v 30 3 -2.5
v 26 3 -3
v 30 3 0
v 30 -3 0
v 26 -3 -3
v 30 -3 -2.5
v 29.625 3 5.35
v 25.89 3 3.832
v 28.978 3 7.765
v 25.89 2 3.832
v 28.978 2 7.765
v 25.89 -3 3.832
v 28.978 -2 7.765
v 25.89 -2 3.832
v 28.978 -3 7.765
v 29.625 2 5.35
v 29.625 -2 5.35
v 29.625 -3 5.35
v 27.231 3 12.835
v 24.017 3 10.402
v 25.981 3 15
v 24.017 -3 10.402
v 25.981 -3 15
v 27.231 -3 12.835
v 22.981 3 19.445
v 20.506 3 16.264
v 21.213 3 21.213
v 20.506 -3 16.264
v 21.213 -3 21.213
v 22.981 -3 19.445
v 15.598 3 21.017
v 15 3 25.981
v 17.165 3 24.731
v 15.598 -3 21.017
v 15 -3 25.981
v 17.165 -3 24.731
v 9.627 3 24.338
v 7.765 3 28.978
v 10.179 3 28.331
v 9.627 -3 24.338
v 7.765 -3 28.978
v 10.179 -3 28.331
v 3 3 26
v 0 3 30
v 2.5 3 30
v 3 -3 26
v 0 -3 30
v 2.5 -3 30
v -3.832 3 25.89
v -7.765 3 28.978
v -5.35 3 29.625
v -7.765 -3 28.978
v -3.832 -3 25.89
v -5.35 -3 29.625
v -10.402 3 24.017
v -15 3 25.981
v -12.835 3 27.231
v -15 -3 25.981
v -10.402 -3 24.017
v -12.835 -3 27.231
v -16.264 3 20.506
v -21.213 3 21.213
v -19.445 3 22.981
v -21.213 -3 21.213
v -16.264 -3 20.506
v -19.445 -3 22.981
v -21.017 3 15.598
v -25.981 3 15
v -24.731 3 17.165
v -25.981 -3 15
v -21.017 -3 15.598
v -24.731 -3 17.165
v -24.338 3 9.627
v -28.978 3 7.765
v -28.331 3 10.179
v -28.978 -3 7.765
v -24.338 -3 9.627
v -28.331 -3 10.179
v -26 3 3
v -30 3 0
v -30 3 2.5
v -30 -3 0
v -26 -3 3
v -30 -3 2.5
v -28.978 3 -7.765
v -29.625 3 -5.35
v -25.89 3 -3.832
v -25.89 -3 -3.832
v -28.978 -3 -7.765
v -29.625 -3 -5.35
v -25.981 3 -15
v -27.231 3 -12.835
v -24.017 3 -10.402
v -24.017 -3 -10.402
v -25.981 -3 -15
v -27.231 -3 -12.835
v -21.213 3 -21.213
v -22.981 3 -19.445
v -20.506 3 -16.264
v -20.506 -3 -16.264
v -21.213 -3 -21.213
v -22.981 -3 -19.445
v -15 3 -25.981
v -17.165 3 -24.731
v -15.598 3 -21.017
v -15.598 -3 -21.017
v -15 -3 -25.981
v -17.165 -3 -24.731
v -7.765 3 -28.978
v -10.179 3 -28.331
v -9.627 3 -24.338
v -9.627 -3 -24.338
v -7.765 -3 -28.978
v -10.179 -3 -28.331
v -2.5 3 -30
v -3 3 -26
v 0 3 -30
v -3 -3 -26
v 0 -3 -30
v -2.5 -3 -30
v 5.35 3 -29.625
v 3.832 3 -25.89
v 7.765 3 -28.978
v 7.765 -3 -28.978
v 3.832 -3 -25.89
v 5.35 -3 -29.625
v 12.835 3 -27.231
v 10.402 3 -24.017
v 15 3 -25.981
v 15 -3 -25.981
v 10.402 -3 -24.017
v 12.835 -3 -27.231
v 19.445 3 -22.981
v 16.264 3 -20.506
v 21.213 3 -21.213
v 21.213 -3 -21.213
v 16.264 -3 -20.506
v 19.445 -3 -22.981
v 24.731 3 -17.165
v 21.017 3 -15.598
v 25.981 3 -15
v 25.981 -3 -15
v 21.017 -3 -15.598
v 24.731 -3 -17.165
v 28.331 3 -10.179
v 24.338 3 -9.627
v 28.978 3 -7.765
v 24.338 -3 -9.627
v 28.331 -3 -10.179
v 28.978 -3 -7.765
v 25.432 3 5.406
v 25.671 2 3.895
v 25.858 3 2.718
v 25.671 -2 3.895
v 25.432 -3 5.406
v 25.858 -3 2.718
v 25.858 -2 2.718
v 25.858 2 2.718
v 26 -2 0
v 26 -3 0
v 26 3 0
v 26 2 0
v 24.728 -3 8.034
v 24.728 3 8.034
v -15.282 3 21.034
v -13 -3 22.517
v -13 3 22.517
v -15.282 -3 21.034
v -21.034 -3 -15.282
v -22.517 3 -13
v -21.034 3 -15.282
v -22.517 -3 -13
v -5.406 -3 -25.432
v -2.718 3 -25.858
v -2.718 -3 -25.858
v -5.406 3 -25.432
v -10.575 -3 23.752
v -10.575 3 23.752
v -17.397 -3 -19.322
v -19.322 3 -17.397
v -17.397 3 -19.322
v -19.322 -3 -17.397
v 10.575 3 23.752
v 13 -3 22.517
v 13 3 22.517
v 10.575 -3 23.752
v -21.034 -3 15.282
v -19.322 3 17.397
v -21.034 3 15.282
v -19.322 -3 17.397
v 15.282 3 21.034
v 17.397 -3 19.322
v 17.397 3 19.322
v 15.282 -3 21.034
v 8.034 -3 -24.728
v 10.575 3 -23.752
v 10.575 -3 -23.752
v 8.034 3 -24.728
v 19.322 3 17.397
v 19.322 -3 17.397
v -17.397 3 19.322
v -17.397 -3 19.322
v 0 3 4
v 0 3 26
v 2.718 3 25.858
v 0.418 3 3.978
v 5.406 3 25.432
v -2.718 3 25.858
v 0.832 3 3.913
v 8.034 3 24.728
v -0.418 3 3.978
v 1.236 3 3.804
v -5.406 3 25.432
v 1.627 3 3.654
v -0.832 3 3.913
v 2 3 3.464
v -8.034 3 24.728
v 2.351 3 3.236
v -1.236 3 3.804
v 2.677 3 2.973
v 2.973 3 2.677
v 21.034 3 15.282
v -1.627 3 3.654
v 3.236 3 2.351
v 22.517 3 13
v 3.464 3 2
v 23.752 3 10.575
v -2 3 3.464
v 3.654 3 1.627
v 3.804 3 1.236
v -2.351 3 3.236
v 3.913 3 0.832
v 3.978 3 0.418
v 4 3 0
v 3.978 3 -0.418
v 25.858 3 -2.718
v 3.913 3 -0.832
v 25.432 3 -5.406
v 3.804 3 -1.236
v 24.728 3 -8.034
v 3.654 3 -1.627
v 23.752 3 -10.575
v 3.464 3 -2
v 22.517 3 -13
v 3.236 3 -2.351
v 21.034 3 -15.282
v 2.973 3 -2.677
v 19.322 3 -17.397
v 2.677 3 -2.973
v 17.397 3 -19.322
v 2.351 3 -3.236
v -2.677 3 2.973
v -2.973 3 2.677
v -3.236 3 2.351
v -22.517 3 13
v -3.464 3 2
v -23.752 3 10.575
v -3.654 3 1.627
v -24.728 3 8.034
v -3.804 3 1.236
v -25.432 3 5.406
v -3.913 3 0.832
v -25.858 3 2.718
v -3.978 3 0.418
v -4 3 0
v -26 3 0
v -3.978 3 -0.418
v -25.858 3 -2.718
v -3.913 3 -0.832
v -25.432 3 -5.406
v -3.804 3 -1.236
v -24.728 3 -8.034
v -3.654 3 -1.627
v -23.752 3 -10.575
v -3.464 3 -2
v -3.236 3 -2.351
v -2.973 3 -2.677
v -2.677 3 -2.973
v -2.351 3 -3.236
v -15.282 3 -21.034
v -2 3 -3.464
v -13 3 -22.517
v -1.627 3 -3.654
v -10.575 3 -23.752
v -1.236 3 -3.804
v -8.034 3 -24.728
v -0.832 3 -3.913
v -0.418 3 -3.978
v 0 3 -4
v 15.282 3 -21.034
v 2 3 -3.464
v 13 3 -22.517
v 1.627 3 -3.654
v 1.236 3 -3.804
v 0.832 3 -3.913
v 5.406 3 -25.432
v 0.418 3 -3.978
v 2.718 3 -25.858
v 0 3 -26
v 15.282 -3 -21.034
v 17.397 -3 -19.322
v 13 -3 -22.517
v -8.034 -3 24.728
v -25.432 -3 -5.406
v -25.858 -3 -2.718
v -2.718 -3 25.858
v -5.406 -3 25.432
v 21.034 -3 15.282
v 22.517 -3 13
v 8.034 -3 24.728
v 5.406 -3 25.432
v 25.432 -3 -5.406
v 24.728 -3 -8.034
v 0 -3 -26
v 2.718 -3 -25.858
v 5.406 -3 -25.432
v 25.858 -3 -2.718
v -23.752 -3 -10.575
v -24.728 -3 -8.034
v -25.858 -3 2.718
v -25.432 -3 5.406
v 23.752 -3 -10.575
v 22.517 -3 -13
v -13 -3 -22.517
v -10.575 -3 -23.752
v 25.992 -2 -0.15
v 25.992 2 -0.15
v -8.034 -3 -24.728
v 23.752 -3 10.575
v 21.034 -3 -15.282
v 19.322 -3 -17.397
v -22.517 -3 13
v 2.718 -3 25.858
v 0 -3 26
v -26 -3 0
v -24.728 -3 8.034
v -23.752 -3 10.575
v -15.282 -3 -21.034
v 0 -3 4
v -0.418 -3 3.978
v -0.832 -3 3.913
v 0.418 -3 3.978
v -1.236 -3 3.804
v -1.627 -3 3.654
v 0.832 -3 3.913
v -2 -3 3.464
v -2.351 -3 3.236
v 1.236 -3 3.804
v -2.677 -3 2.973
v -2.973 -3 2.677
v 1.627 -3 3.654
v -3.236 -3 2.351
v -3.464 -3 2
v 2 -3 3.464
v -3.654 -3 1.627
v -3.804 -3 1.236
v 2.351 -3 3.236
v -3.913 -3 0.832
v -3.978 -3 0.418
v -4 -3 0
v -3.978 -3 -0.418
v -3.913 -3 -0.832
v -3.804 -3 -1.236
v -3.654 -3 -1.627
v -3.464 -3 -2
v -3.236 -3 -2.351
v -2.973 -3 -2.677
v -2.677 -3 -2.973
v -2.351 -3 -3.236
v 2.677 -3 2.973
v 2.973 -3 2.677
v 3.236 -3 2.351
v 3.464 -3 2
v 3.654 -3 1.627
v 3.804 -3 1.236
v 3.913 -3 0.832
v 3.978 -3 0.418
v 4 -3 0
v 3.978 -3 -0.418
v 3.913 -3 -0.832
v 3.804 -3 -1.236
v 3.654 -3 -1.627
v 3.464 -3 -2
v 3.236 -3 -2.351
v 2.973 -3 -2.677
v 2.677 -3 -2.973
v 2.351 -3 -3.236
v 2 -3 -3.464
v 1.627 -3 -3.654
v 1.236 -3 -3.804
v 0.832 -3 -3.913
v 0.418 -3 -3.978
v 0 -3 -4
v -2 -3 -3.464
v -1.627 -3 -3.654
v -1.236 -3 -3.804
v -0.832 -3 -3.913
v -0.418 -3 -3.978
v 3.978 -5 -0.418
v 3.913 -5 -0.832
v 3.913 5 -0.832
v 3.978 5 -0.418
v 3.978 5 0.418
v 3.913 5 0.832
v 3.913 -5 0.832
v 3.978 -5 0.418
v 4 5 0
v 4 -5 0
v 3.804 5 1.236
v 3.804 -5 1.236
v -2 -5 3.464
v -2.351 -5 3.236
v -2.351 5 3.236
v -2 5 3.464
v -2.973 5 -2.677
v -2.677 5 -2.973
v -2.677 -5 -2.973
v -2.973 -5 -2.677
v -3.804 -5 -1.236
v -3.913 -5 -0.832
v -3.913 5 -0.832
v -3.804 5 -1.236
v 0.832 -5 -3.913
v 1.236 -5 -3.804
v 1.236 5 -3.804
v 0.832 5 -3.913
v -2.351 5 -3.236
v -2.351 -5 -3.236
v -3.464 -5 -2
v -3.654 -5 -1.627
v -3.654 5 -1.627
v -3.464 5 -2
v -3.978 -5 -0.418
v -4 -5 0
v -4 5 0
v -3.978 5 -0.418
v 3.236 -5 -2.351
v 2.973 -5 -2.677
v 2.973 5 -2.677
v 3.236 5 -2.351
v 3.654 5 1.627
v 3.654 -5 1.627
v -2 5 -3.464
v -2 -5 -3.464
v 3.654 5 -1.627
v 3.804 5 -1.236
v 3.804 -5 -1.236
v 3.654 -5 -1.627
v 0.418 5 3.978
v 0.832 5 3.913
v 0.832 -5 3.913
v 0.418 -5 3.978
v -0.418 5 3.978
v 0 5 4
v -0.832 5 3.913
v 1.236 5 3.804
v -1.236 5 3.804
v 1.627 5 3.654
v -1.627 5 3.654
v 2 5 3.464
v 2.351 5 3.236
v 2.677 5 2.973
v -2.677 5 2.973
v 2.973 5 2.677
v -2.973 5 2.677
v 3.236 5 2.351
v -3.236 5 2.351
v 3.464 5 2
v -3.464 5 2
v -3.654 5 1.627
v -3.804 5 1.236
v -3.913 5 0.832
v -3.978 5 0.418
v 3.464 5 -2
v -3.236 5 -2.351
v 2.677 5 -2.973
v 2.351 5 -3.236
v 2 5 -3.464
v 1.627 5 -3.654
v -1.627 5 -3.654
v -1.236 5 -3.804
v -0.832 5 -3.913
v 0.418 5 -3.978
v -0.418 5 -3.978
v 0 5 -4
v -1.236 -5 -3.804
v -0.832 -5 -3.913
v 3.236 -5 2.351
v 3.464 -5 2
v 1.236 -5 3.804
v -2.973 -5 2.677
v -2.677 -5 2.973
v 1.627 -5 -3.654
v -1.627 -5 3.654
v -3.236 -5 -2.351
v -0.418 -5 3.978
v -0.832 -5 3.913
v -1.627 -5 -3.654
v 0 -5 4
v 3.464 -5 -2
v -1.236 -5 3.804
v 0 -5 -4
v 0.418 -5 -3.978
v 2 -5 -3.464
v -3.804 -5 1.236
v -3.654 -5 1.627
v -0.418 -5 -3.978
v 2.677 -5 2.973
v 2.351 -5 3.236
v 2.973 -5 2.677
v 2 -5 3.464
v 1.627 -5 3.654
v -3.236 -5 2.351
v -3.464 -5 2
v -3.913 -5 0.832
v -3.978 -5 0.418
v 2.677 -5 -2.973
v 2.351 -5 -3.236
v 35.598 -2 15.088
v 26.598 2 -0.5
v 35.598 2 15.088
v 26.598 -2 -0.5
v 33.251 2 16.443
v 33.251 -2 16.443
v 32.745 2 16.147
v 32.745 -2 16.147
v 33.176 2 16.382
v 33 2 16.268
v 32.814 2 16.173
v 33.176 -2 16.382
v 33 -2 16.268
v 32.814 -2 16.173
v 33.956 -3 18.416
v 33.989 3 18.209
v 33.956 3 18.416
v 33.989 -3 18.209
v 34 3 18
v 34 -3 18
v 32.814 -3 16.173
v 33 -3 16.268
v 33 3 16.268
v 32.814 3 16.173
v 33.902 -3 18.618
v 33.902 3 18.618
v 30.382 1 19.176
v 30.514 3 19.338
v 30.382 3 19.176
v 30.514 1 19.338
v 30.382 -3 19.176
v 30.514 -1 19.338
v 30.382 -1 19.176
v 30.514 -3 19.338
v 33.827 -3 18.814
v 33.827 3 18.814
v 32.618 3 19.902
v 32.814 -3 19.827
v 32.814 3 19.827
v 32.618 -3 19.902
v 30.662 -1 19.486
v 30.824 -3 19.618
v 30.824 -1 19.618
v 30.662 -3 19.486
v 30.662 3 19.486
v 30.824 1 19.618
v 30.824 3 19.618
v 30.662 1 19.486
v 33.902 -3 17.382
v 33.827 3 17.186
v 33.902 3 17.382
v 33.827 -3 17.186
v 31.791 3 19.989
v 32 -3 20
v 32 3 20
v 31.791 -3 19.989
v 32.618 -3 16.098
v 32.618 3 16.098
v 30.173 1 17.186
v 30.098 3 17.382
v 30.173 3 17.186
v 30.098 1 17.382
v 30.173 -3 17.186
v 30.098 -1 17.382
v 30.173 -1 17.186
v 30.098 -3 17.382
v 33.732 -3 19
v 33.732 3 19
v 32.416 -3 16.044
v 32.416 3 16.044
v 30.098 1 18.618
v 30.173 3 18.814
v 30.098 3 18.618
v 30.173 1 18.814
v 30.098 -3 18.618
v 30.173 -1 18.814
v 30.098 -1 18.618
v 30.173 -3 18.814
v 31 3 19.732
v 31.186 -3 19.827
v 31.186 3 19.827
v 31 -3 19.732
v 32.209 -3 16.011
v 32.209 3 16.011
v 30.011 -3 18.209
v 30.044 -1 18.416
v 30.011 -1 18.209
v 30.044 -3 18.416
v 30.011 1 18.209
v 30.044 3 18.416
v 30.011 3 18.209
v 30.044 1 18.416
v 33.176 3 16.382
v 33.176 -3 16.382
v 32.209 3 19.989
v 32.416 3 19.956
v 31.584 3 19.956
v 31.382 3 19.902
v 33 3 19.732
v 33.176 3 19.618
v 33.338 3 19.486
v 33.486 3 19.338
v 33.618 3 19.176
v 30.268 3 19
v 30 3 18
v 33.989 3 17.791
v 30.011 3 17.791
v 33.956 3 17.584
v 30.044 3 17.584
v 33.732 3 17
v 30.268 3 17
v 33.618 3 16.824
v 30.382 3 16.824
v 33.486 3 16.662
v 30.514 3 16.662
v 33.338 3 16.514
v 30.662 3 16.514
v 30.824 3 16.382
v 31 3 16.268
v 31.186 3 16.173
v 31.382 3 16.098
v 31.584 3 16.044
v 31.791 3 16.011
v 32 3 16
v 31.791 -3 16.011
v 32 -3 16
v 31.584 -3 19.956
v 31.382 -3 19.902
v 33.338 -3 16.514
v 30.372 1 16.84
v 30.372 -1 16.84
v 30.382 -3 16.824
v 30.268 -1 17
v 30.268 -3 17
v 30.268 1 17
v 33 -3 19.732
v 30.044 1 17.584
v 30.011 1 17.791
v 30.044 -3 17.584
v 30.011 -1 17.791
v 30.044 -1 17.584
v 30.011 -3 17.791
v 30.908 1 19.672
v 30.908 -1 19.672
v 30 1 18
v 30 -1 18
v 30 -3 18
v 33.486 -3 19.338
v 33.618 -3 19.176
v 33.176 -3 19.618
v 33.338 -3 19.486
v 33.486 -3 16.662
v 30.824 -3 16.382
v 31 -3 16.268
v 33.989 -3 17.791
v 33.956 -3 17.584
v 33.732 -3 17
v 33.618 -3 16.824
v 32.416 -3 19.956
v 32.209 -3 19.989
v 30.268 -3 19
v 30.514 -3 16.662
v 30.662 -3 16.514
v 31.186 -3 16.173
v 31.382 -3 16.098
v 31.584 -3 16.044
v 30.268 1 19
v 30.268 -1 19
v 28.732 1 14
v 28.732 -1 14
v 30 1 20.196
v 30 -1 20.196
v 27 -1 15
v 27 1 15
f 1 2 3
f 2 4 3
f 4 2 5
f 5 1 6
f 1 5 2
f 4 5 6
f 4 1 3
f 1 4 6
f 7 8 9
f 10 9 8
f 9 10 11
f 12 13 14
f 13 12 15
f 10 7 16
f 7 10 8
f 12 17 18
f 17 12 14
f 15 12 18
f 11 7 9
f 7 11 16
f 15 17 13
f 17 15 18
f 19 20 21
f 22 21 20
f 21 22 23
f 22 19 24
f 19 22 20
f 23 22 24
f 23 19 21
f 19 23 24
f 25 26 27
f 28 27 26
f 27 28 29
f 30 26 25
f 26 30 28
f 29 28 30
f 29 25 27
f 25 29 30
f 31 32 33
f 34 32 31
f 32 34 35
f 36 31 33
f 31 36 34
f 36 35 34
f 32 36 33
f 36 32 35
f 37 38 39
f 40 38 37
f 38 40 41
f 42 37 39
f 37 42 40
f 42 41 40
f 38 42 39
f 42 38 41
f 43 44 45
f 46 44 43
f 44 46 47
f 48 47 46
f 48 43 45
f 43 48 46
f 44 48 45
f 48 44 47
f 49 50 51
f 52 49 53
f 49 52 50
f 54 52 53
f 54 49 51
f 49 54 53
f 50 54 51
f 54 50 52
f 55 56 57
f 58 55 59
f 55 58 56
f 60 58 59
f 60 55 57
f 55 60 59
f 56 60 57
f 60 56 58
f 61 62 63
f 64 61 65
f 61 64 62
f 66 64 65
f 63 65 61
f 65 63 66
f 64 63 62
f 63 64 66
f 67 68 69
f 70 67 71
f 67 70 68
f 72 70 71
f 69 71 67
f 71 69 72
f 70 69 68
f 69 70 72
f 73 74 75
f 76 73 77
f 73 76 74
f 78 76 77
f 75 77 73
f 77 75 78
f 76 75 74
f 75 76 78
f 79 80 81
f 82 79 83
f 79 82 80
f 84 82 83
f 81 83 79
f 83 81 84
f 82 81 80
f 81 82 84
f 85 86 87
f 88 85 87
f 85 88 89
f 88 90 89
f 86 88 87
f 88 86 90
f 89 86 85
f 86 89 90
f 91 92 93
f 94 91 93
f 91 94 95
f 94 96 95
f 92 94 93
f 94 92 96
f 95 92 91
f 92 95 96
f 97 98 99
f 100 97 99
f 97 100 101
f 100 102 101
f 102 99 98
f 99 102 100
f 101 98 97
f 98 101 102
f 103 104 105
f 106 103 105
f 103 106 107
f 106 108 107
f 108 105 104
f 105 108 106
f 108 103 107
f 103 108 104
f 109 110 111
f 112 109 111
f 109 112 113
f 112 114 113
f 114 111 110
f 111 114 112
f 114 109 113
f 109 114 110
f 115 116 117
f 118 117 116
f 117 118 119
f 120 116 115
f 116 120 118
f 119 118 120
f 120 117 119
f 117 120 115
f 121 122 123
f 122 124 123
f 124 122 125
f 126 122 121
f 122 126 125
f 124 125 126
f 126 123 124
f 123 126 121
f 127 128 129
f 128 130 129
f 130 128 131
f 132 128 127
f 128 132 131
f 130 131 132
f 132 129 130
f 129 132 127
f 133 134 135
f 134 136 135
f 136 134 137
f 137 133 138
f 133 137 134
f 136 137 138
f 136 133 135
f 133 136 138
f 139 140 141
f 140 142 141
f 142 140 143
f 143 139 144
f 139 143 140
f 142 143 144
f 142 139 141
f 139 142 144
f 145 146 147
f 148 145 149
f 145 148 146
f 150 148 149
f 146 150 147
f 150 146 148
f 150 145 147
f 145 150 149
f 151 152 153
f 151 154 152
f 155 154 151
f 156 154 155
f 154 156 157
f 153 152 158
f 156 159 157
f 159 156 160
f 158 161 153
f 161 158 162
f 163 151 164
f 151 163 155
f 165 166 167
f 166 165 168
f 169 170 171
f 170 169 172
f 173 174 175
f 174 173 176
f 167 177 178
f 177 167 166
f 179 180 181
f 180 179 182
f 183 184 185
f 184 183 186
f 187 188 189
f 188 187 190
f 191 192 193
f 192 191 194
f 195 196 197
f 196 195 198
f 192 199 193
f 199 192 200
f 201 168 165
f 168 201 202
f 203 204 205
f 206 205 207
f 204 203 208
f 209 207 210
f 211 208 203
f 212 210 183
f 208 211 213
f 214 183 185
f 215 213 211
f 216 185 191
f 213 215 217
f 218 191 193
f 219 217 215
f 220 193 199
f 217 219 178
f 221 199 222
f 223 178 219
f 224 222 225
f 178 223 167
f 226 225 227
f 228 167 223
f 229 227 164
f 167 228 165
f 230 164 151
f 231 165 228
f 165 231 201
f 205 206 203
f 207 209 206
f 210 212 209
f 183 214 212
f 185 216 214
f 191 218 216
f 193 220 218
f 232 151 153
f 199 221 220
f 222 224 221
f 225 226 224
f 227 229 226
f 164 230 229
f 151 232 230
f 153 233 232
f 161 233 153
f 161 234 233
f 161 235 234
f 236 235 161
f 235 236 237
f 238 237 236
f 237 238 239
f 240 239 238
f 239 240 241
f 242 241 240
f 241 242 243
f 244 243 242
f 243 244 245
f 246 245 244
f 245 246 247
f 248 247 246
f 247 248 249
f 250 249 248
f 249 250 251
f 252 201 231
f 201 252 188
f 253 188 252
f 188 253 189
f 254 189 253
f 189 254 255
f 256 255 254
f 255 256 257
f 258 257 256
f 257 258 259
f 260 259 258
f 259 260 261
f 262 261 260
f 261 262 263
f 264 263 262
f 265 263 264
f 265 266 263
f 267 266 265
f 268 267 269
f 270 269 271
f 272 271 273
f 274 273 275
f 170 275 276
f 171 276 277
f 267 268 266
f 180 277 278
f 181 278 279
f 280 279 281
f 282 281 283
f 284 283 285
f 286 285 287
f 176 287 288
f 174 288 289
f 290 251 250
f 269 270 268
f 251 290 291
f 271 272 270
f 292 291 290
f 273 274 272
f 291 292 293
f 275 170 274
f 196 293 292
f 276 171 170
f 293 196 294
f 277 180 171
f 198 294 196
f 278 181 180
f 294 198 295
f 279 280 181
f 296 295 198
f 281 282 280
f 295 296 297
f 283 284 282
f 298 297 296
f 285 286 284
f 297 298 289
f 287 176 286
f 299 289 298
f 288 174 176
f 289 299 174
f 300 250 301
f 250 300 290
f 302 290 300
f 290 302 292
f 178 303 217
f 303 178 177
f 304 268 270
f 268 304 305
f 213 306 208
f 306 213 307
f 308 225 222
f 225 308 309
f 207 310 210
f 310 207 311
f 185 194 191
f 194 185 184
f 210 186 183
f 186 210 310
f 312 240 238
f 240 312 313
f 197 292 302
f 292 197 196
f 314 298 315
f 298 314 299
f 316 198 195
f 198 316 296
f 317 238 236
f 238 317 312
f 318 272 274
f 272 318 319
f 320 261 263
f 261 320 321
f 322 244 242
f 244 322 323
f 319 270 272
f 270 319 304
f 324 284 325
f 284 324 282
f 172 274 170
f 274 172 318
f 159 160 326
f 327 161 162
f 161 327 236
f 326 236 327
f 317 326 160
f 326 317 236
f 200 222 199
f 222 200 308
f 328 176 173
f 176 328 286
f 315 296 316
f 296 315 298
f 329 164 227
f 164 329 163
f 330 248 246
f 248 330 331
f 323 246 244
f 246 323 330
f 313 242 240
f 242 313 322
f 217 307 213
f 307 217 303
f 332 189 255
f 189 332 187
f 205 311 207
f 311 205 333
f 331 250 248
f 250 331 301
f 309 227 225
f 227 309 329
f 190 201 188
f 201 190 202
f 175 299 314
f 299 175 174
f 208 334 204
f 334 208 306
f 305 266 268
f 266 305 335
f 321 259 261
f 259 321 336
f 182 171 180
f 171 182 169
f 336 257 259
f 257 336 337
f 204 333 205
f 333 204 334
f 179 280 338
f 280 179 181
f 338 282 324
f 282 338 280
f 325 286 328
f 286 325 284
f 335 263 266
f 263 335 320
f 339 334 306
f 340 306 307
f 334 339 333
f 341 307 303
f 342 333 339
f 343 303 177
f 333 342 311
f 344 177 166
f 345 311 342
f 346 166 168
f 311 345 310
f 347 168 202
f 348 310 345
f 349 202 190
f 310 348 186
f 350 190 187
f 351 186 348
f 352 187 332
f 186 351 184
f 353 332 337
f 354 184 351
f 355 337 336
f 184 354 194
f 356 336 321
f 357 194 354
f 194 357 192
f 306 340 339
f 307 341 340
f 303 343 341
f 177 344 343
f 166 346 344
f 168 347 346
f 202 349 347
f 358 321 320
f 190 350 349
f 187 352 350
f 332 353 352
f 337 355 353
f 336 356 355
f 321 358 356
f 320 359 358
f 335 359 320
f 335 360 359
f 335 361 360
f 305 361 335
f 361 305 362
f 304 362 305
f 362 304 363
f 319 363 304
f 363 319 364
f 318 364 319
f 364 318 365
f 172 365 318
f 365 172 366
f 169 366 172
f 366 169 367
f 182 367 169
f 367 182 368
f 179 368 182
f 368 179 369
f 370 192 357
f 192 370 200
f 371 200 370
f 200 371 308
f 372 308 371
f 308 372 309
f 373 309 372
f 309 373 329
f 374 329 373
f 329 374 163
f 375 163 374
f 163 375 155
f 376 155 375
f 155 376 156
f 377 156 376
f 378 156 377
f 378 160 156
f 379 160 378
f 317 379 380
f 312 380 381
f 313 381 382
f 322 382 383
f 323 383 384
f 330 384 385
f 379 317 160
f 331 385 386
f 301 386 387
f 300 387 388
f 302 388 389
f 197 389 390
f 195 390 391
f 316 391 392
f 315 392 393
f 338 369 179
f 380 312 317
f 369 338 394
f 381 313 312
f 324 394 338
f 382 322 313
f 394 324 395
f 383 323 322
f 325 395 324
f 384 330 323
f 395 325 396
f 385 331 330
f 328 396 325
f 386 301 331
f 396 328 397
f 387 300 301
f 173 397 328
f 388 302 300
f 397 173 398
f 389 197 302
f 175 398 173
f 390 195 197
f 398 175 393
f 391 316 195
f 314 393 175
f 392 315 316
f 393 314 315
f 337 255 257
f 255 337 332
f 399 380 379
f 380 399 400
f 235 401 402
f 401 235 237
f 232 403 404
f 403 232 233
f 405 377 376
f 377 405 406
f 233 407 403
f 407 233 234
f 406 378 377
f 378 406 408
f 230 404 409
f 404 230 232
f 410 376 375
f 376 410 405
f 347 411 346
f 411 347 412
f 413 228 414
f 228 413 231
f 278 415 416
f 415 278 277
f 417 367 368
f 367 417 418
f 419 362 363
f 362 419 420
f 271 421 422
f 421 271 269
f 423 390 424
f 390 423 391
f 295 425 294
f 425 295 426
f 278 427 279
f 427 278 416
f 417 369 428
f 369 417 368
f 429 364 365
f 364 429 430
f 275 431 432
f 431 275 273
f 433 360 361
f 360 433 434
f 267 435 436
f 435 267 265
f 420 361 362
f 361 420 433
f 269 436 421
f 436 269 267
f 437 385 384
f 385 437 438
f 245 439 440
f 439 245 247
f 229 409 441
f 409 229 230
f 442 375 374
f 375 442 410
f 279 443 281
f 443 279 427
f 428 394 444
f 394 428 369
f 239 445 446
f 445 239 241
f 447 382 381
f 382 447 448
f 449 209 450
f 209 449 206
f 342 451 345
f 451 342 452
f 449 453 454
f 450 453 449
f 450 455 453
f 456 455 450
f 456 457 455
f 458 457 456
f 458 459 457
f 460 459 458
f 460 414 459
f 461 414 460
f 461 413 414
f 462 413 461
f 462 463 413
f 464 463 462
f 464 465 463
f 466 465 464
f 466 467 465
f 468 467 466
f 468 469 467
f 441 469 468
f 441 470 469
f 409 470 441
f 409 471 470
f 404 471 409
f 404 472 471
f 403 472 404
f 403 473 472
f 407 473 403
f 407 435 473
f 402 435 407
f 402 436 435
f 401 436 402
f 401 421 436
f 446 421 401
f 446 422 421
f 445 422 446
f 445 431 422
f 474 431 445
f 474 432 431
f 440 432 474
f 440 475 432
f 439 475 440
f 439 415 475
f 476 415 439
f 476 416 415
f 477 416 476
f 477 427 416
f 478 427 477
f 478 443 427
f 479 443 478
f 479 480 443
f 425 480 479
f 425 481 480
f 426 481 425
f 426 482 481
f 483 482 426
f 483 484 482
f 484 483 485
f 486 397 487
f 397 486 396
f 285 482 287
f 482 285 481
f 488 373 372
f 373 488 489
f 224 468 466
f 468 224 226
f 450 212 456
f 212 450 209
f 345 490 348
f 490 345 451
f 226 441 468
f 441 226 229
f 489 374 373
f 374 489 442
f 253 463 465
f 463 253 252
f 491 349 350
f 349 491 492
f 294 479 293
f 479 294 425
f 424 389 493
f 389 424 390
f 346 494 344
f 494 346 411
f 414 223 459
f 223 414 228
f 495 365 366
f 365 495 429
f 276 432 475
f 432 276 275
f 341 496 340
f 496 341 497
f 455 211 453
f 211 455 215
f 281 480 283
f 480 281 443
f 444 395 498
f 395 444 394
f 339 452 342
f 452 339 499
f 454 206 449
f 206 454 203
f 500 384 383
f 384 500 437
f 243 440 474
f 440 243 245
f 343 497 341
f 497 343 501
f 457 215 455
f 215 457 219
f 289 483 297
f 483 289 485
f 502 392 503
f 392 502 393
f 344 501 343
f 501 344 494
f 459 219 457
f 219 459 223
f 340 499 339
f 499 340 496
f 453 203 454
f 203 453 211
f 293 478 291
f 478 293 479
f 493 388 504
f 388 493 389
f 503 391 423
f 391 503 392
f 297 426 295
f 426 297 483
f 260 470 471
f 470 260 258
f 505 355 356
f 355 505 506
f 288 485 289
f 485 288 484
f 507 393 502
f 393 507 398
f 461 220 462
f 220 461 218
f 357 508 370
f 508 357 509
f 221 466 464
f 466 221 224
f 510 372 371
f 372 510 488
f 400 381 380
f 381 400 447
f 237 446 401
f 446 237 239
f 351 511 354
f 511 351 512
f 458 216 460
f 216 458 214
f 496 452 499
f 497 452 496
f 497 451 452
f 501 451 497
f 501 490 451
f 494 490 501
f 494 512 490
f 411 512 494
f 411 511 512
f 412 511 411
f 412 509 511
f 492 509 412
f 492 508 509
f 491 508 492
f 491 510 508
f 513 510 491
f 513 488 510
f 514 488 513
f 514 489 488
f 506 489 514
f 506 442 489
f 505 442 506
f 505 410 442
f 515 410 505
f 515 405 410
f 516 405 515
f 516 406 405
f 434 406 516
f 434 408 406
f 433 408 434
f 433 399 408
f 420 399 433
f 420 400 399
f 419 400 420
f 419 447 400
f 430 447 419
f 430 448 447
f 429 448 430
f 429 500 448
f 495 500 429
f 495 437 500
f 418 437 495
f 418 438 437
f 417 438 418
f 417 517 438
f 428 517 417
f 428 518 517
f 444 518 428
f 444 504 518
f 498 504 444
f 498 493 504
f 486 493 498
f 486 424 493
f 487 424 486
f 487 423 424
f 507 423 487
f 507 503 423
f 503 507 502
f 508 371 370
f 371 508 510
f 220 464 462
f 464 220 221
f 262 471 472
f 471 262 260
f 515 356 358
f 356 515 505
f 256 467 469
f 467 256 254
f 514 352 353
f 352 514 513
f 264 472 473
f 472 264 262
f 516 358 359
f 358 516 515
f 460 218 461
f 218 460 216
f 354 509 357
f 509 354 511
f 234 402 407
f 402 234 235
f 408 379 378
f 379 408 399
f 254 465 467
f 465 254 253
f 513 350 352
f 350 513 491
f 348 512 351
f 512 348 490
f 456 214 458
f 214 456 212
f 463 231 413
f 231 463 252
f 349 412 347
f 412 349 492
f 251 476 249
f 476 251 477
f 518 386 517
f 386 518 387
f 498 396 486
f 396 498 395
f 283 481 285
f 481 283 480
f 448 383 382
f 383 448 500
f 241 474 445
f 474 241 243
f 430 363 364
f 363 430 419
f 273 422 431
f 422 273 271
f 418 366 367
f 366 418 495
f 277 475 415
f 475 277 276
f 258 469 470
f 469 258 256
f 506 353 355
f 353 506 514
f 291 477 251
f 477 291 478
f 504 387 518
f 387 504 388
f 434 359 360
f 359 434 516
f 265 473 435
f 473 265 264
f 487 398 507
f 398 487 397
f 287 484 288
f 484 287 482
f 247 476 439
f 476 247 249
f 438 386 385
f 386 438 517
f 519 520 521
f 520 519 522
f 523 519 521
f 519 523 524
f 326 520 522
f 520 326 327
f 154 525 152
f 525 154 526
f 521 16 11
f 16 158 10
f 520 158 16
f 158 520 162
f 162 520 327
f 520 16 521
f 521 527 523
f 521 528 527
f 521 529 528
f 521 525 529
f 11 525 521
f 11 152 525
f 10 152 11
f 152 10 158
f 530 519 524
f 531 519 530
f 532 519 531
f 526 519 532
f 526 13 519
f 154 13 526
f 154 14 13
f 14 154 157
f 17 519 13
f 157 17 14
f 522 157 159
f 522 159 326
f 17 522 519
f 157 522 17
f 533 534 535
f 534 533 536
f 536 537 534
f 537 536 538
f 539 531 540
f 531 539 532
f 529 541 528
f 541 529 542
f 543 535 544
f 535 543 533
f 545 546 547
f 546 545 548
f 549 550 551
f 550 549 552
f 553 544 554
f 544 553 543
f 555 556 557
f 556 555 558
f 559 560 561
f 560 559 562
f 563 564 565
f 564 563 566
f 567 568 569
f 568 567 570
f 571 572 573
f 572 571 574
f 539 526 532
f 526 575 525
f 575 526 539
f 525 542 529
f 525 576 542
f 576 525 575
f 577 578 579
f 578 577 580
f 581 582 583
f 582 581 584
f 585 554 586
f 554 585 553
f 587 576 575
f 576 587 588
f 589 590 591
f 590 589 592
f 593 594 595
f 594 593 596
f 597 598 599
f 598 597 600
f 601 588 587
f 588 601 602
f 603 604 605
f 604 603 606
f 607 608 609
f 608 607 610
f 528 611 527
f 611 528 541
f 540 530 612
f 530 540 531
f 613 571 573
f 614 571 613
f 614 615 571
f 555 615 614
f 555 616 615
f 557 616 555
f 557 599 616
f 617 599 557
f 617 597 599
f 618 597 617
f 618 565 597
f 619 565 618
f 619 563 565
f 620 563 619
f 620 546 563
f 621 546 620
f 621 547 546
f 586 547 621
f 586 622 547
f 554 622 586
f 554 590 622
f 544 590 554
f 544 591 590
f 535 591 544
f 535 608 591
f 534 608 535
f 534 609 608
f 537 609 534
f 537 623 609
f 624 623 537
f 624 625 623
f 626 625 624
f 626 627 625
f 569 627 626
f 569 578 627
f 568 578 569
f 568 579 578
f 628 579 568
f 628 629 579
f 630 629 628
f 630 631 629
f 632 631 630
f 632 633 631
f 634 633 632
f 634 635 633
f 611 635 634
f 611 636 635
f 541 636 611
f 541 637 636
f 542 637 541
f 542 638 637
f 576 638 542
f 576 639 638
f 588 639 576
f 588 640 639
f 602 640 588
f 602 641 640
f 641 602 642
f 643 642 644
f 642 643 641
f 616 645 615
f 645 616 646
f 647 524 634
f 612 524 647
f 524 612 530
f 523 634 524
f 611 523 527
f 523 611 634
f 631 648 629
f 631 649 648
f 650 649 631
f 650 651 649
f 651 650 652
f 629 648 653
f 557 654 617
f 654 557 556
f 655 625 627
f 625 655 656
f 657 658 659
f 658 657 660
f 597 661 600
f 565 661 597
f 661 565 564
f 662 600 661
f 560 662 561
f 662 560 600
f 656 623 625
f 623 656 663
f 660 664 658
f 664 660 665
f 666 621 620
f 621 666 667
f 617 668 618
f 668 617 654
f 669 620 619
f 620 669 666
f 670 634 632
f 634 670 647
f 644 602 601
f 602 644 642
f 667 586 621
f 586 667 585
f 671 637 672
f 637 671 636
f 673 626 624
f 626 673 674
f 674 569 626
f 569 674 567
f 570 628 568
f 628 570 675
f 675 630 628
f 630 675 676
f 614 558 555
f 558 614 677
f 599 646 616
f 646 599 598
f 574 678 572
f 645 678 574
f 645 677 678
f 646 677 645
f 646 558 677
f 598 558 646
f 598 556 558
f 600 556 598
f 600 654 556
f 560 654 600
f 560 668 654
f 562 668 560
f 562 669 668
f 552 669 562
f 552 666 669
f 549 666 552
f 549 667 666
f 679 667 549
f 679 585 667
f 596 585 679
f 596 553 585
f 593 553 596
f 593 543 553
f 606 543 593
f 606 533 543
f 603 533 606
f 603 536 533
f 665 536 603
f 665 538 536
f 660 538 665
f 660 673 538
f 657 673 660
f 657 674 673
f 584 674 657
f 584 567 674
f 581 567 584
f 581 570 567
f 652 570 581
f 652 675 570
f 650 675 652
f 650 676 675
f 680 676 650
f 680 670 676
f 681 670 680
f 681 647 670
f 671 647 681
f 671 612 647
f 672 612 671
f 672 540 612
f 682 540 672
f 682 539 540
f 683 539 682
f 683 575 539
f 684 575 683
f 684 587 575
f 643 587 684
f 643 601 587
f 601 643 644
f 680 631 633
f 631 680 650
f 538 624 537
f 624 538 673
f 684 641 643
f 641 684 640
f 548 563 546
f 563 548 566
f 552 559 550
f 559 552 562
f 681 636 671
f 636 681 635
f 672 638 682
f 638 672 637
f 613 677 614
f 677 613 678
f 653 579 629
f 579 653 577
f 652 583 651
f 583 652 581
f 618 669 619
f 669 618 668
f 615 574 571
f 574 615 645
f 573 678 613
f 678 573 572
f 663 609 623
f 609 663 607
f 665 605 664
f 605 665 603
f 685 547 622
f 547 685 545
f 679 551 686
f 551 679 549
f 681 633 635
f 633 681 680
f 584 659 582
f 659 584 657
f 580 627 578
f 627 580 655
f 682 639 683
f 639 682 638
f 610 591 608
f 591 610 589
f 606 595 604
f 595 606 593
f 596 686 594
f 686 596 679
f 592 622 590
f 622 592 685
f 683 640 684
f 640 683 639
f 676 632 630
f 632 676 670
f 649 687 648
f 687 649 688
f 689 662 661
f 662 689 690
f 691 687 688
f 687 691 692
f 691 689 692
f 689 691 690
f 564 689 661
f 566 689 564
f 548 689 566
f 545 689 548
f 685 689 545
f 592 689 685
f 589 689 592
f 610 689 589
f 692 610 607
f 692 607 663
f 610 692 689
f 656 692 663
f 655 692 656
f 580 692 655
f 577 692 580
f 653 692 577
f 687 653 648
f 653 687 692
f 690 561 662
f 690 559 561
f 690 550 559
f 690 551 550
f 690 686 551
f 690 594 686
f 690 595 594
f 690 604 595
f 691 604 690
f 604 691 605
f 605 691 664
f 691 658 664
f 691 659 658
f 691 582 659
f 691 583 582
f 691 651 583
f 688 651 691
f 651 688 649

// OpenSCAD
// file: _common.scad
// mechanism 共用設定 + 齒輪 module
$fn = 60;

// 簡化齒輪：N 個齒、節圓半徑 r、齒高 h、齒寬 w
module simple_gear(N = 16, r = 20, h = 4, thick = 6) {
  union() {
    // 主圓盤
    cylinder(h = thick, r = r, center = true);
    // 齒（梯形）
    for (i = [0:N-1]) {
      rotate([0, 0, i * 360 / N])
        translate([r, 0, 0])
          linear_extrude(height = thick, center = true)
            polygon([[0, -2.4], [h, -1.4], [h, 1.4], [0, 2.4]]);
    }
    // 中心凸軸
    cylinder(h = thick * 1.4, r = r * 0.18, center = true);
  }
}
// main file
// 棘輪 Ratchet — 帶斜齒輪盤 + 卡爪（pawl）防反
include <_common.scad>

// 棘輪盤（24 個斜齒）
N = 24;
R = 26;
TOOTH = 4;
color([0.08, 0.71, 0.65])
  rotate([90, 0, 0])
    union() {
      cylinder(h = 6, r = R, center = true);
      // 斜齒（單向傾斜）
      for (i = [0:N-1]) {
        rotate([0, 0, i * 360 / N])
          translate([R, 0, 0])
            linear_extrude(height = 6, center = true)
              polygon([[0, -3], [TOOTH, -2.5], [TOOTH, 0]]);  // 斜面+垂直面 = 單向齒
      }
    }

// 中心軸
color([0.06, 0.46, 0.42])
  rotate([90, 0, 0]) cylinder(h = 10, r = 4, center = true);

// 卡爪 pawl（壓在齒上方）
color([0.86, 0.15, 0.15]) {
  // 卡爪本體
  translate([R - 2, -2, 1])
    rotate([0, 30, 0])
      cube([3, 4, 18]);
}
// 卡爪 pivot（固定點，棘輪斜上方）
color([0.32, 0.32, 0.32])
  translate([R + 6, 0, 18]) rotate([90, 0, 0]) cylinder(h = 6, r = 2, center = true);

// 卡爪彈簧（簡化用一段斜線）
color([0.5, 0.5, 0.5])
  translate([R + 1, -1, 15]) rotate([0, 30, 0]) cube([2, 2, 6]);
